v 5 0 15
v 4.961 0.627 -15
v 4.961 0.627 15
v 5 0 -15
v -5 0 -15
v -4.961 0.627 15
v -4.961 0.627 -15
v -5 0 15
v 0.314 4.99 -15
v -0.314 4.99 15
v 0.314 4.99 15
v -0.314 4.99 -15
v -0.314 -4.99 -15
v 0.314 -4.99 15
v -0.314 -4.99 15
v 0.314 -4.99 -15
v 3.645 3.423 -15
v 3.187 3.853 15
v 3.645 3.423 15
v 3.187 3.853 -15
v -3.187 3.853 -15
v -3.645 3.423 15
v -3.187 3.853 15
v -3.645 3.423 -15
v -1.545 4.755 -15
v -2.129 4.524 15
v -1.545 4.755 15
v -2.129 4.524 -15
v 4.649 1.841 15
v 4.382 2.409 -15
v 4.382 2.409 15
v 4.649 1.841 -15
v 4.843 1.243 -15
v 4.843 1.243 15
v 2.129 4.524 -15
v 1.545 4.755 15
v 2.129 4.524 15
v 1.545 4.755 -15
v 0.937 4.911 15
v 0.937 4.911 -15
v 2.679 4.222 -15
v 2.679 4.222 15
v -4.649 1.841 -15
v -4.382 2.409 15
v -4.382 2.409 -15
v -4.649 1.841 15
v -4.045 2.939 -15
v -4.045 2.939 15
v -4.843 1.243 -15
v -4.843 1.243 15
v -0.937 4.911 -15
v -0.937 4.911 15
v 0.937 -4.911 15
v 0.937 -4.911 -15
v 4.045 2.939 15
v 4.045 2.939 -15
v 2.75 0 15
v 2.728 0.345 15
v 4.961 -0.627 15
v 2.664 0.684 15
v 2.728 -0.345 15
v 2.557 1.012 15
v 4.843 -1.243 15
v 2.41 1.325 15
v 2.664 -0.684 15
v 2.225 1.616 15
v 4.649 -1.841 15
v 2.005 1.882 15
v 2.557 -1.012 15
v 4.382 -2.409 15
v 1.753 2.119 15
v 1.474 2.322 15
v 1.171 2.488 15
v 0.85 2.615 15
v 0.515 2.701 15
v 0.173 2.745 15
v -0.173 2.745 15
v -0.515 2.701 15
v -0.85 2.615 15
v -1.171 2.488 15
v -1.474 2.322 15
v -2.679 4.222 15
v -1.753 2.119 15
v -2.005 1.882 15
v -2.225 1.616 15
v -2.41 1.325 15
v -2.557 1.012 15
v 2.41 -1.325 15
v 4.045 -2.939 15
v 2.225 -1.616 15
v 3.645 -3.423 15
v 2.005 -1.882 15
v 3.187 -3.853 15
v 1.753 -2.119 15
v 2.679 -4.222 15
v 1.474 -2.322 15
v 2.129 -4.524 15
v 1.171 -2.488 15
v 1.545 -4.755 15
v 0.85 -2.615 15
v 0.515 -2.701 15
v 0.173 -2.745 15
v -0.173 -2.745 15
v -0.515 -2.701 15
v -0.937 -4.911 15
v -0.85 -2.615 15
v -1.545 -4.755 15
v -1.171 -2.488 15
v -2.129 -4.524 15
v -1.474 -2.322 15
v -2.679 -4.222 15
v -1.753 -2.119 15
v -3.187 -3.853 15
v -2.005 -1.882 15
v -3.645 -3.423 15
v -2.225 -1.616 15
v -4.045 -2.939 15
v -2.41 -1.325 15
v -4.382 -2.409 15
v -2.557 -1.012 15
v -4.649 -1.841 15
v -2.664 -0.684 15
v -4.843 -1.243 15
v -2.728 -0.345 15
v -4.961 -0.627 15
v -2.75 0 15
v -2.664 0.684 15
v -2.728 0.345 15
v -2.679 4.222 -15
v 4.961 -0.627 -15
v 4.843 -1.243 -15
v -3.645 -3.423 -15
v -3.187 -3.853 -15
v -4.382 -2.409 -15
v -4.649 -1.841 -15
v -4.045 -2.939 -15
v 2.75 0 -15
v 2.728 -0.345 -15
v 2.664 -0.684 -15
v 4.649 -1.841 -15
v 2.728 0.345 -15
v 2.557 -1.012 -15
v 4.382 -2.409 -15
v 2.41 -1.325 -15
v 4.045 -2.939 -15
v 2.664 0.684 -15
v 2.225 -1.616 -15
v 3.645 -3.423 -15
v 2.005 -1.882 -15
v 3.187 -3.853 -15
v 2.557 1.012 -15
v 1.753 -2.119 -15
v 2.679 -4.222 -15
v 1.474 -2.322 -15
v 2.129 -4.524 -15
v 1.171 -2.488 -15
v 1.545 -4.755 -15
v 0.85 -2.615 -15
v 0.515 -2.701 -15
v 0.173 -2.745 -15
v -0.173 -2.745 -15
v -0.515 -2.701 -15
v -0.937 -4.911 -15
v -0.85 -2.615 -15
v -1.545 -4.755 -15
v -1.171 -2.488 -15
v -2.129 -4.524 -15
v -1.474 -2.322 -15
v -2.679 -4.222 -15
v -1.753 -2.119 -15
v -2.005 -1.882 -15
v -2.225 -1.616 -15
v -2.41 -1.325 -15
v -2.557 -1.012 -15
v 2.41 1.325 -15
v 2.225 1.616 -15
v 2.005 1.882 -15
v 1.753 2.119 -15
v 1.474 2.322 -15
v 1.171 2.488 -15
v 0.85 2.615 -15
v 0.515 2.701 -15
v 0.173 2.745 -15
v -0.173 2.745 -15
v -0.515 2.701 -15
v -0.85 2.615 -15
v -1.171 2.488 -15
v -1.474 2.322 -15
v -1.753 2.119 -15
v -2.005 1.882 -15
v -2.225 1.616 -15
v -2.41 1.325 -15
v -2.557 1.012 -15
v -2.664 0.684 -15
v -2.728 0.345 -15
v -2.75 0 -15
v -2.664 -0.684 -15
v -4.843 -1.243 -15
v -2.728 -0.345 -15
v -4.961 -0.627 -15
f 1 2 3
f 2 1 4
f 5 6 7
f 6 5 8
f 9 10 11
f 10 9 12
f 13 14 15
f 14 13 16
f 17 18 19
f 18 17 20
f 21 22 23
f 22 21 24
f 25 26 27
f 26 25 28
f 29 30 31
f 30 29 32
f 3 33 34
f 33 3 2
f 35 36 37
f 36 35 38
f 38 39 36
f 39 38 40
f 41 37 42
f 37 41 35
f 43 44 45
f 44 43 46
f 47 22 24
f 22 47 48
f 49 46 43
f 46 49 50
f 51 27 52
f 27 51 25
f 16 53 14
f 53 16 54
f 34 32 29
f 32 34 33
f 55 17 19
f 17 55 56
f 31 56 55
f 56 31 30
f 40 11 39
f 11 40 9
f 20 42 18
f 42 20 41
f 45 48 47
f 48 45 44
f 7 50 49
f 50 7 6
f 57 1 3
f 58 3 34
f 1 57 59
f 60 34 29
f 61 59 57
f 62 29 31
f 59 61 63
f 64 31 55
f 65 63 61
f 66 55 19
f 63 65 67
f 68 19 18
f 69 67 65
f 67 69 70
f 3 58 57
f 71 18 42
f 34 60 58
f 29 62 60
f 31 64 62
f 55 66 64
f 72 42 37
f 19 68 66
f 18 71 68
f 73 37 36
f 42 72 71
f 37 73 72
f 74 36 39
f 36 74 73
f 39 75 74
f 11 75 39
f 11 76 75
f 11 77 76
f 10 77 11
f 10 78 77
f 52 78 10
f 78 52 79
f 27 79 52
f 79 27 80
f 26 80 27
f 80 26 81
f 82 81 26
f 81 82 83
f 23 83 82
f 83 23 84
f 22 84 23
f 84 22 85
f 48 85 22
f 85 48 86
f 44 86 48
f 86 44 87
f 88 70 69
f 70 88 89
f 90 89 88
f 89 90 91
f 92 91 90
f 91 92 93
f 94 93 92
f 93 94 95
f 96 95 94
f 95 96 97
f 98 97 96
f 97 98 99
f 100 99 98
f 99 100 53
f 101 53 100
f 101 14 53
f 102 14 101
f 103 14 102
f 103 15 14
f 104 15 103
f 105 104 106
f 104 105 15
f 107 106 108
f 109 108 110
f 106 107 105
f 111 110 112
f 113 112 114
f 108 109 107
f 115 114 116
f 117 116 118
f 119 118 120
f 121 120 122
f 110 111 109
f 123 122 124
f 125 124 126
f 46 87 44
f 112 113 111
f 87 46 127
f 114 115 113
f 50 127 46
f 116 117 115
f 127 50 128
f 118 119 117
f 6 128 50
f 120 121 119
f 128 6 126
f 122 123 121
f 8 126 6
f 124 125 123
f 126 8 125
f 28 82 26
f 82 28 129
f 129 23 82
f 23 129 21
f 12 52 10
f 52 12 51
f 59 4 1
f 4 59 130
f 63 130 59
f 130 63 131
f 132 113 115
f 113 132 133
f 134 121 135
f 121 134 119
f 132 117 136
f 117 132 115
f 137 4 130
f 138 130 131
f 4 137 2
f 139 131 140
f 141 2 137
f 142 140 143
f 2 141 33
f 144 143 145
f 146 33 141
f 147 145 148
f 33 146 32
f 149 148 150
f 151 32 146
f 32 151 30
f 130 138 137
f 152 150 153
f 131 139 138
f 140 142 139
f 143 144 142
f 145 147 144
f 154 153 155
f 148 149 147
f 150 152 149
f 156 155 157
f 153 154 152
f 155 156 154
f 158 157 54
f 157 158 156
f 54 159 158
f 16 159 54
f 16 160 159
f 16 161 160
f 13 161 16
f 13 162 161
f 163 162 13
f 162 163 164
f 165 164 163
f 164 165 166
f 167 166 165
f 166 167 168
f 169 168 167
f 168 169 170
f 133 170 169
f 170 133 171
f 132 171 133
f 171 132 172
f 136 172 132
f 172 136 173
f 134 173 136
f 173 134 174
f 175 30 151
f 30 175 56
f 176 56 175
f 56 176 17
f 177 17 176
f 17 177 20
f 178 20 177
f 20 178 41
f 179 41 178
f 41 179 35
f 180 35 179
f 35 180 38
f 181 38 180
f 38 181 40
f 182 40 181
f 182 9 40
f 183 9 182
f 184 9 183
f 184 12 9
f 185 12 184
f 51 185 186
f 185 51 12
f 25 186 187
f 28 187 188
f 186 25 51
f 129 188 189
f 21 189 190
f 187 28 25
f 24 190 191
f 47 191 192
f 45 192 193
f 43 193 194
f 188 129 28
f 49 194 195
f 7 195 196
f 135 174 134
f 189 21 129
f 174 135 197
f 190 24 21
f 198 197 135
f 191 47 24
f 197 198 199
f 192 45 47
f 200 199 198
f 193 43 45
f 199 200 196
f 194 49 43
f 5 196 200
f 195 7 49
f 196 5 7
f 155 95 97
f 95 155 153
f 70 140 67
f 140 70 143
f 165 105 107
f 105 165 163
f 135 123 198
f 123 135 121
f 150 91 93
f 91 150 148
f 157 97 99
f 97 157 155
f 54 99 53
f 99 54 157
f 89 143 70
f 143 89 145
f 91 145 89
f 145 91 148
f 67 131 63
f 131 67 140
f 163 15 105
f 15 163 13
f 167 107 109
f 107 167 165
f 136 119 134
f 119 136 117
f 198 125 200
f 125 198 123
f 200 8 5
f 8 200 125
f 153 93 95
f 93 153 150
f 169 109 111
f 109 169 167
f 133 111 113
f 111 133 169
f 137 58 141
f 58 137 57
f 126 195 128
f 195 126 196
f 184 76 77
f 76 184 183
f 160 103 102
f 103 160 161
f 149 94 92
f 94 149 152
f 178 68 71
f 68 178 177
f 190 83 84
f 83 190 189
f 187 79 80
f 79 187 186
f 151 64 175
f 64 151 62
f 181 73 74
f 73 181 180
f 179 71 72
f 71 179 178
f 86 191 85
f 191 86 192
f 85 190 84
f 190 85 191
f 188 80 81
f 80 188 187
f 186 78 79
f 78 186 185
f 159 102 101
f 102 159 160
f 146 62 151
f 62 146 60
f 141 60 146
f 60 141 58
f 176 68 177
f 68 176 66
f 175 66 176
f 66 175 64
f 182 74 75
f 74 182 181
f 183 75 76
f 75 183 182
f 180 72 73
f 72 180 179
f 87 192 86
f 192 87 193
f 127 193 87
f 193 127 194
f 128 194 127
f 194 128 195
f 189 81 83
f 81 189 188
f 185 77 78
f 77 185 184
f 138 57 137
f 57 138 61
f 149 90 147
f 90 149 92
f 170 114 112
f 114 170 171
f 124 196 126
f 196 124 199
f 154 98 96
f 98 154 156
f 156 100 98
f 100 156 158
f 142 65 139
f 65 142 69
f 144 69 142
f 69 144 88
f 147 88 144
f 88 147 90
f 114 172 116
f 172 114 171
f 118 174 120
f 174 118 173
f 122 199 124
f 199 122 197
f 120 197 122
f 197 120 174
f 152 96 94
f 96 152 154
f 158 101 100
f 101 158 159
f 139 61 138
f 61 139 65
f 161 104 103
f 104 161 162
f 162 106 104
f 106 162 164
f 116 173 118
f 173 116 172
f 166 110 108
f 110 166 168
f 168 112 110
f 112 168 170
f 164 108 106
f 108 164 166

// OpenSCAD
$fn = 50;


difference() {
	union() {
		translate(v = [0, 0, -15.0000000000]) {
			cylinder(h = 30, r = 5.0000000000);
		}
	}
	union() {
		translate(v = [0, 0, -100.0000000000]) {
			cylinder(h = 200, r = 2.7500000000);
		}
	}
}
